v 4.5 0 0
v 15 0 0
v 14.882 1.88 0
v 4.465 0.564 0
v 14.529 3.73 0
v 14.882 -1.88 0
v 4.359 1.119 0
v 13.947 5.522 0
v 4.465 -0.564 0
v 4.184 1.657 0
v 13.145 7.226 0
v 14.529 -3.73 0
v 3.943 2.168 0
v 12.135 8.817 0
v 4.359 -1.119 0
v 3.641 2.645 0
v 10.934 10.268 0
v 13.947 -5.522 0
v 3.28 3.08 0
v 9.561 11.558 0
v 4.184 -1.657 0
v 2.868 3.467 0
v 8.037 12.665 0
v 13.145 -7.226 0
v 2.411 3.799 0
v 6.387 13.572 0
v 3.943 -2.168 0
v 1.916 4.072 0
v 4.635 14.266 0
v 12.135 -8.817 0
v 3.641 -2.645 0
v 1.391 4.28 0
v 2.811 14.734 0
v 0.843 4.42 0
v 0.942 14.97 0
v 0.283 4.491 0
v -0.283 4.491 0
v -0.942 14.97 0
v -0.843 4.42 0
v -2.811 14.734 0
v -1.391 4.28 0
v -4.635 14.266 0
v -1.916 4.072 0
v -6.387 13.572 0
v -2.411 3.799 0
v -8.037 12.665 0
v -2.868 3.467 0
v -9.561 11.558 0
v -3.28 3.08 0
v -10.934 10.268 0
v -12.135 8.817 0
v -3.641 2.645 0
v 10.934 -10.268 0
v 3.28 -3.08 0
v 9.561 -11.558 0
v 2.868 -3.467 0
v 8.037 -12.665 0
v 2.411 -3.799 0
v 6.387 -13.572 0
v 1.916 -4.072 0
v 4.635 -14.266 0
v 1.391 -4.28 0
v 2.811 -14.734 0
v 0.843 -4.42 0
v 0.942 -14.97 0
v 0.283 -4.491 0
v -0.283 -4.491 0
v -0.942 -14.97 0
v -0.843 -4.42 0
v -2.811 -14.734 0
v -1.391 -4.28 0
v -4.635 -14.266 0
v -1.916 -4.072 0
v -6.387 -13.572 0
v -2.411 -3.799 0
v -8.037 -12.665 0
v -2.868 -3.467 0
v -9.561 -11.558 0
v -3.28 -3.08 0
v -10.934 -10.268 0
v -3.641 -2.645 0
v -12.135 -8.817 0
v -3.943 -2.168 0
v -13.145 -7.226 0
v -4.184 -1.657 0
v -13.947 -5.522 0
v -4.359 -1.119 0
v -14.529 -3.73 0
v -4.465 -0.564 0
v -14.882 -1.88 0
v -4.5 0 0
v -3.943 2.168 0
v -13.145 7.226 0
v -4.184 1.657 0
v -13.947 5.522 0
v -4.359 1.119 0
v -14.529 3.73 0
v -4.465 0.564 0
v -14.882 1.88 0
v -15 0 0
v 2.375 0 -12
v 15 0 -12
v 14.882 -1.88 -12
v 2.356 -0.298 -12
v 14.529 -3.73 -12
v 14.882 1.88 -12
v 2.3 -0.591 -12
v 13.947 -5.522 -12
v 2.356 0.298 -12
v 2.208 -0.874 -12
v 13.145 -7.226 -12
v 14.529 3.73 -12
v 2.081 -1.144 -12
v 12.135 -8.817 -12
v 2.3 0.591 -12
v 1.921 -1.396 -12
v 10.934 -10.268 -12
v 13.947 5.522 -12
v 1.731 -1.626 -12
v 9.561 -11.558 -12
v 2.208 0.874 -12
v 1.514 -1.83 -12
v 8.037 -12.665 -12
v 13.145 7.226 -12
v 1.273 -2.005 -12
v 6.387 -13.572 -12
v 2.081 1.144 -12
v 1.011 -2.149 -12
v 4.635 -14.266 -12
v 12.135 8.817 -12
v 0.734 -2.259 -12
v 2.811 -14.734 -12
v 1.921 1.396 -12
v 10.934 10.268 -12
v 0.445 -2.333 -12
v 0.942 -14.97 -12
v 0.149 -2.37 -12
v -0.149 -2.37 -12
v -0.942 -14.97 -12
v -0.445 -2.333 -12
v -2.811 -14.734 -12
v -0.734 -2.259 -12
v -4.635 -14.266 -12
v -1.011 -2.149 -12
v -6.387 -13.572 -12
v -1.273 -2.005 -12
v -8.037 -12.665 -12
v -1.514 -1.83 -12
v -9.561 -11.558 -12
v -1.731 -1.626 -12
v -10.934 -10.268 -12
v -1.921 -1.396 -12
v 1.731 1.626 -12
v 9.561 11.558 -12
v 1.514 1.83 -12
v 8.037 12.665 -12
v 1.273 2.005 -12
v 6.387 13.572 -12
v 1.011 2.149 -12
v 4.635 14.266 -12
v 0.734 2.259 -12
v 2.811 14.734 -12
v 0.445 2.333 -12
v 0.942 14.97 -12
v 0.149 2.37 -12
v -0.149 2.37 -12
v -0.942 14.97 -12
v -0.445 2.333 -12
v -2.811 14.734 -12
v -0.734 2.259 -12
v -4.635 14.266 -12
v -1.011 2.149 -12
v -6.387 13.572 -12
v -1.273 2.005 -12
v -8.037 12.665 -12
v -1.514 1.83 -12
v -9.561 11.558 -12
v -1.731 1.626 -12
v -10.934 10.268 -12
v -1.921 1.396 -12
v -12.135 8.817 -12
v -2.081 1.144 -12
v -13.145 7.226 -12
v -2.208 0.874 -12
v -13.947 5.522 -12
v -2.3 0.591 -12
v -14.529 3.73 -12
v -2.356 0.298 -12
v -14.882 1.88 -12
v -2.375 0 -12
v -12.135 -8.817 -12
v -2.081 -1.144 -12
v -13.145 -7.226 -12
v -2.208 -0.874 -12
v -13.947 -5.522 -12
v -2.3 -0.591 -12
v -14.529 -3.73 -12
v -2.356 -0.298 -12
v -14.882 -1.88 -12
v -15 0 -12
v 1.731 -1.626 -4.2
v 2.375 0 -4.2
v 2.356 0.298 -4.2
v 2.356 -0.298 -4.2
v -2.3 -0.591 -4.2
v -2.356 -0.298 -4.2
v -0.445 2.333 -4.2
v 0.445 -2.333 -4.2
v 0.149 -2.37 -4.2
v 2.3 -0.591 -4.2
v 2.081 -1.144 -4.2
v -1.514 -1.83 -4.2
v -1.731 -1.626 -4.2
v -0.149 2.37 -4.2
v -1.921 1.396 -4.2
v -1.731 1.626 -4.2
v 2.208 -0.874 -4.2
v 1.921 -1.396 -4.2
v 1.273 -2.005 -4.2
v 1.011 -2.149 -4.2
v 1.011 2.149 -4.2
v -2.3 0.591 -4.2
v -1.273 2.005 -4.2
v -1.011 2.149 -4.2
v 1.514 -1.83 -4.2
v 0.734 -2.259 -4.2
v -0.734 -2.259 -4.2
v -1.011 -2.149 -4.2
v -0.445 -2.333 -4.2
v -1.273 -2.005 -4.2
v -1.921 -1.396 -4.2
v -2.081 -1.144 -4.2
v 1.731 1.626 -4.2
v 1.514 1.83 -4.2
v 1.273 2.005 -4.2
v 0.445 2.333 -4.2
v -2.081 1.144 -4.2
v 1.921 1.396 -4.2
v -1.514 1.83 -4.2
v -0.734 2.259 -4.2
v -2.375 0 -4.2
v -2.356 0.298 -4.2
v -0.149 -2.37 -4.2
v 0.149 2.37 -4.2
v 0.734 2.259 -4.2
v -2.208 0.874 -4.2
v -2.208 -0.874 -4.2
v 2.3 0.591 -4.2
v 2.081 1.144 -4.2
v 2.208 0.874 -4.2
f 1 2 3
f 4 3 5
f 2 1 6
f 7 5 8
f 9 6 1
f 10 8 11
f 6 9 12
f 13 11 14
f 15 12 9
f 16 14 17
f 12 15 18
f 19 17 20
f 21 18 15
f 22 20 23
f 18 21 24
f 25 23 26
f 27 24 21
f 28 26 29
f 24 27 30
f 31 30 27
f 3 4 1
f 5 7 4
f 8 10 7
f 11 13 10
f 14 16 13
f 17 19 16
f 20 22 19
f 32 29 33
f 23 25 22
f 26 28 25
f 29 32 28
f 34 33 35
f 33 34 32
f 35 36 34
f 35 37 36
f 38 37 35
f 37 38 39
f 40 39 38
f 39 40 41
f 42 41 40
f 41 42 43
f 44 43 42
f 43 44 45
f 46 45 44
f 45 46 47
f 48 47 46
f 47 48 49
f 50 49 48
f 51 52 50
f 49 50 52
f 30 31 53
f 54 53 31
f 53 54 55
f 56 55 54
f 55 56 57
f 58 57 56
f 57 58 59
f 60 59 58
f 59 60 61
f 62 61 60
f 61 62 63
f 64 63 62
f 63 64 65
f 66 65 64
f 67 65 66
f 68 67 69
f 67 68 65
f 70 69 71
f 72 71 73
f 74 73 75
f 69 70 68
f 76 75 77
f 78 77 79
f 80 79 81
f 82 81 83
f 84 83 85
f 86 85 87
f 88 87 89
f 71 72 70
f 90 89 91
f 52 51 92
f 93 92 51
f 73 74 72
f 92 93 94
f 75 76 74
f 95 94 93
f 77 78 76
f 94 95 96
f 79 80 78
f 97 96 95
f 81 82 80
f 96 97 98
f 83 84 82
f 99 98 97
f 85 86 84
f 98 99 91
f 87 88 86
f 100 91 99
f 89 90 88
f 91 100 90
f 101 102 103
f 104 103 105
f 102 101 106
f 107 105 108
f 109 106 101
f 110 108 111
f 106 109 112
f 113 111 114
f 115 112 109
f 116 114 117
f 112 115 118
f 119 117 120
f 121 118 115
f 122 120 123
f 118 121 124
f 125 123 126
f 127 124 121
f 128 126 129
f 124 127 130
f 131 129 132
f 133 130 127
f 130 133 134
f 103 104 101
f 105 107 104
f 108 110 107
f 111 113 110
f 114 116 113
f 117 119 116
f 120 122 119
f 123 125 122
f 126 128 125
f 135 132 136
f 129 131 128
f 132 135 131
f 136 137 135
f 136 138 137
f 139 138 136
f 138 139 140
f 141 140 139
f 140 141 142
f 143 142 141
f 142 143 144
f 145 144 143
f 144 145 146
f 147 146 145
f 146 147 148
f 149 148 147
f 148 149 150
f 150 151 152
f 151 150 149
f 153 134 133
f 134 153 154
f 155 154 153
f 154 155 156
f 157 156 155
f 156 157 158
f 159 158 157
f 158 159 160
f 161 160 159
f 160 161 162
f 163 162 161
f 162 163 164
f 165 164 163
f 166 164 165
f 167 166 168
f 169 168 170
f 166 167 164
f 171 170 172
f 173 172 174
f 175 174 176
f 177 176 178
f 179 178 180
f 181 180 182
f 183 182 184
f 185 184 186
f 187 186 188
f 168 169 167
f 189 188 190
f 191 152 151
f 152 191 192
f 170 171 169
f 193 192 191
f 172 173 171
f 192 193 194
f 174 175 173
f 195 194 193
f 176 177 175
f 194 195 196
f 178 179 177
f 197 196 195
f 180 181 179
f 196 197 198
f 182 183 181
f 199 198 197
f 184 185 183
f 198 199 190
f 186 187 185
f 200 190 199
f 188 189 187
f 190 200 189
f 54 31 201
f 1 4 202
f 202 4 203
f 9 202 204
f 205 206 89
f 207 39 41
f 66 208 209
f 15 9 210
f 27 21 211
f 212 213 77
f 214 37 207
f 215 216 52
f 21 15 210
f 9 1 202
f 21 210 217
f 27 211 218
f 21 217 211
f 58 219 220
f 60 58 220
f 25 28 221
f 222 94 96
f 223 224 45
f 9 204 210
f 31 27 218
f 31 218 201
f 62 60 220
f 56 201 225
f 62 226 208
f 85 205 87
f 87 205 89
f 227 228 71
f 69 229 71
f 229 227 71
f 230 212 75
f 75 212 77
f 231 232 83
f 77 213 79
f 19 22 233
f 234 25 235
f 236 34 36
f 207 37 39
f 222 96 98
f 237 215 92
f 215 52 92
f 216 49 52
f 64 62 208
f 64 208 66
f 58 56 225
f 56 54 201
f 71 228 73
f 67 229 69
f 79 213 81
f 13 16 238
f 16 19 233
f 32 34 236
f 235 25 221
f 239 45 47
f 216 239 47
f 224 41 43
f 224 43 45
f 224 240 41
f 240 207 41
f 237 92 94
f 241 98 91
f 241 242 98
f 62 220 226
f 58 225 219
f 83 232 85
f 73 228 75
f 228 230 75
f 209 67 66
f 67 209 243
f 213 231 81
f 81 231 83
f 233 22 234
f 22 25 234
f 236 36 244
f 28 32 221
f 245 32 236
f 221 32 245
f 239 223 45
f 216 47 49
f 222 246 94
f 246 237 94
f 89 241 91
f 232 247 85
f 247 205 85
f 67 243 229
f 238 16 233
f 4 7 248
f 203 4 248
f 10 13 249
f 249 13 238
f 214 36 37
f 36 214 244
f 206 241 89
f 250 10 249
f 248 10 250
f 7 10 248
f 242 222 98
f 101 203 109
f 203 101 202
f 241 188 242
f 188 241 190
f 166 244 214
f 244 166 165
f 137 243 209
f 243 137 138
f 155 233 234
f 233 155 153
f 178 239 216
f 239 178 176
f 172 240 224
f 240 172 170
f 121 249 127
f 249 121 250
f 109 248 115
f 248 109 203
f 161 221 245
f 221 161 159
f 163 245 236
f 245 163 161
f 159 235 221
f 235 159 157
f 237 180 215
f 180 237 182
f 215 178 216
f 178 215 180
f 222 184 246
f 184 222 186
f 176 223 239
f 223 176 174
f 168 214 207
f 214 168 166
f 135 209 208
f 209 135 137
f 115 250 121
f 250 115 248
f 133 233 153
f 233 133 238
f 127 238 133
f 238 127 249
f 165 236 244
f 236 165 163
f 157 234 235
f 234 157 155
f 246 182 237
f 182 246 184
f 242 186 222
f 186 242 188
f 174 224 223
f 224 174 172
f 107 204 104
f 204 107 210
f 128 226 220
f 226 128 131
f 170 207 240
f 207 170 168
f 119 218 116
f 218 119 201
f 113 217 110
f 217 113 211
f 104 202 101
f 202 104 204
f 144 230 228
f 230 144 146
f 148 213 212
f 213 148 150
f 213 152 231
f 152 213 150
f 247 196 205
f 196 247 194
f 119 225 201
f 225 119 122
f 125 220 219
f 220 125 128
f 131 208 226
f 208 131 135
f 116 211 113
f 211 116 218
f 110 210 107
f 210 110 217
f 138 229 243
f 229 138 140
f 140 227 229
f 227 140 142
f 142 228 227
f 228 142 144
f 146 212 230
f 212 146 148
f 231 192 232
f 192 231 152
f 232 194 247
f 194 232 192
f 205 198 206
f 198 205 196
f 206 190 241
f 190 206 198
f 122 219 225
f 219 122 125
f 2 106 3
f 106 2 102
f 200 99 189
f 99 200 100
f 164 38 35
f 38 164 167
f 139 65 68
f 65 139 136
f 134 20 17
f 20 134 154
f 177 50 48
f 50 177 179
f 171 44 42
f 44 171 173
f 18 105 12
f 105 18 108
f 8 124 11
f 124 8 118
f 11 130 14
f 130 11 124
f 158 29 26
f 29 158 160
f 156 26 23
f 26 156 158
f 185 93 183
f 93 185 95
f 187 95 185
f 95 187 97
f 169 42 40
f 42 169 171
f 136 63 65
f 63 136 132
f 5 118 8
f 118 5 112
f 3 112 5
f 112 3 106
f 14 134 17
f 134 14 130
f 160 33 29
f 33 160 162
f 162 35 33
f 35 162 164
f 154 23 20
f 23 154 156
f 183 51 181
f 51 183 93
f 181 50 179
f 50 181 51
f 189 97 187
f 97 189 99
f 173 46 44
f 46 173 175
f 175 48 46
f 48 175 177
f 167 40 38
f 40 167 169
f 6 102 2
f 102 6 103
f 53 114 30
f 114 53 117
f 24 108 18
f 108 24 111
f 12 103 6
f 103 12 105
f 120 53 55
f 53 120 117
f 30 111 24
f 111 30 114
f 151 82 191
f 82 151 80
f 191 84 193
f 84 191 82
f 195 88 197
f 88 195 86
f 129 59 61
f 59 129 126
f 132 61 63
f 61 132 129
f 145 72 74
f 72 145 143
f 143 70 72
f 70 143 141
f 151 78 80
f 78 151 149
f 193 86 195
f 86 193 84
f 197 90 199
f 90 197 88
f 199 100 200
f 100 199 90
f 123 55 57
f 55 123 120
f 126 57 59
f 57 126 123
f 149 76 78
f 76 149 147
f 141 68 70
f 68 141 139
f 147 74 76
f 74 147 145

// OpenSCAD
$fn = 50;


difference() {
	union() {
		translate(v = [0, 0, -12.0000000000]) {
			cylinder(h = 12, r = 15.0000000000);
		}
	}
	union() {
		translate(v = [0, 0, 0]) {
			rotate(a = [0, 0, 0]) {
				difference() {
					union() {
						translate(v = [0, 0, -12.0000000000]) {
							cylinder(h = 12, r = 2.2500000000);
						}
						translate(v = [0, 0, -4.2000000000]) {
							cylinder(h = 4.2000000000, r1 = 2.3750000000, r2 = 4.5000000000);
						}
						translate(v = [0, 0, -12.0000000000]) {
							cylinder(h = 12, r = 2.3750000000);
						}
						translate(v = [0, 0, -12.0000000000]) {
							cylinder(h = 12, r = 2.2500000000);
						}
					}
					union();
				}
			}
		}
	}
}
